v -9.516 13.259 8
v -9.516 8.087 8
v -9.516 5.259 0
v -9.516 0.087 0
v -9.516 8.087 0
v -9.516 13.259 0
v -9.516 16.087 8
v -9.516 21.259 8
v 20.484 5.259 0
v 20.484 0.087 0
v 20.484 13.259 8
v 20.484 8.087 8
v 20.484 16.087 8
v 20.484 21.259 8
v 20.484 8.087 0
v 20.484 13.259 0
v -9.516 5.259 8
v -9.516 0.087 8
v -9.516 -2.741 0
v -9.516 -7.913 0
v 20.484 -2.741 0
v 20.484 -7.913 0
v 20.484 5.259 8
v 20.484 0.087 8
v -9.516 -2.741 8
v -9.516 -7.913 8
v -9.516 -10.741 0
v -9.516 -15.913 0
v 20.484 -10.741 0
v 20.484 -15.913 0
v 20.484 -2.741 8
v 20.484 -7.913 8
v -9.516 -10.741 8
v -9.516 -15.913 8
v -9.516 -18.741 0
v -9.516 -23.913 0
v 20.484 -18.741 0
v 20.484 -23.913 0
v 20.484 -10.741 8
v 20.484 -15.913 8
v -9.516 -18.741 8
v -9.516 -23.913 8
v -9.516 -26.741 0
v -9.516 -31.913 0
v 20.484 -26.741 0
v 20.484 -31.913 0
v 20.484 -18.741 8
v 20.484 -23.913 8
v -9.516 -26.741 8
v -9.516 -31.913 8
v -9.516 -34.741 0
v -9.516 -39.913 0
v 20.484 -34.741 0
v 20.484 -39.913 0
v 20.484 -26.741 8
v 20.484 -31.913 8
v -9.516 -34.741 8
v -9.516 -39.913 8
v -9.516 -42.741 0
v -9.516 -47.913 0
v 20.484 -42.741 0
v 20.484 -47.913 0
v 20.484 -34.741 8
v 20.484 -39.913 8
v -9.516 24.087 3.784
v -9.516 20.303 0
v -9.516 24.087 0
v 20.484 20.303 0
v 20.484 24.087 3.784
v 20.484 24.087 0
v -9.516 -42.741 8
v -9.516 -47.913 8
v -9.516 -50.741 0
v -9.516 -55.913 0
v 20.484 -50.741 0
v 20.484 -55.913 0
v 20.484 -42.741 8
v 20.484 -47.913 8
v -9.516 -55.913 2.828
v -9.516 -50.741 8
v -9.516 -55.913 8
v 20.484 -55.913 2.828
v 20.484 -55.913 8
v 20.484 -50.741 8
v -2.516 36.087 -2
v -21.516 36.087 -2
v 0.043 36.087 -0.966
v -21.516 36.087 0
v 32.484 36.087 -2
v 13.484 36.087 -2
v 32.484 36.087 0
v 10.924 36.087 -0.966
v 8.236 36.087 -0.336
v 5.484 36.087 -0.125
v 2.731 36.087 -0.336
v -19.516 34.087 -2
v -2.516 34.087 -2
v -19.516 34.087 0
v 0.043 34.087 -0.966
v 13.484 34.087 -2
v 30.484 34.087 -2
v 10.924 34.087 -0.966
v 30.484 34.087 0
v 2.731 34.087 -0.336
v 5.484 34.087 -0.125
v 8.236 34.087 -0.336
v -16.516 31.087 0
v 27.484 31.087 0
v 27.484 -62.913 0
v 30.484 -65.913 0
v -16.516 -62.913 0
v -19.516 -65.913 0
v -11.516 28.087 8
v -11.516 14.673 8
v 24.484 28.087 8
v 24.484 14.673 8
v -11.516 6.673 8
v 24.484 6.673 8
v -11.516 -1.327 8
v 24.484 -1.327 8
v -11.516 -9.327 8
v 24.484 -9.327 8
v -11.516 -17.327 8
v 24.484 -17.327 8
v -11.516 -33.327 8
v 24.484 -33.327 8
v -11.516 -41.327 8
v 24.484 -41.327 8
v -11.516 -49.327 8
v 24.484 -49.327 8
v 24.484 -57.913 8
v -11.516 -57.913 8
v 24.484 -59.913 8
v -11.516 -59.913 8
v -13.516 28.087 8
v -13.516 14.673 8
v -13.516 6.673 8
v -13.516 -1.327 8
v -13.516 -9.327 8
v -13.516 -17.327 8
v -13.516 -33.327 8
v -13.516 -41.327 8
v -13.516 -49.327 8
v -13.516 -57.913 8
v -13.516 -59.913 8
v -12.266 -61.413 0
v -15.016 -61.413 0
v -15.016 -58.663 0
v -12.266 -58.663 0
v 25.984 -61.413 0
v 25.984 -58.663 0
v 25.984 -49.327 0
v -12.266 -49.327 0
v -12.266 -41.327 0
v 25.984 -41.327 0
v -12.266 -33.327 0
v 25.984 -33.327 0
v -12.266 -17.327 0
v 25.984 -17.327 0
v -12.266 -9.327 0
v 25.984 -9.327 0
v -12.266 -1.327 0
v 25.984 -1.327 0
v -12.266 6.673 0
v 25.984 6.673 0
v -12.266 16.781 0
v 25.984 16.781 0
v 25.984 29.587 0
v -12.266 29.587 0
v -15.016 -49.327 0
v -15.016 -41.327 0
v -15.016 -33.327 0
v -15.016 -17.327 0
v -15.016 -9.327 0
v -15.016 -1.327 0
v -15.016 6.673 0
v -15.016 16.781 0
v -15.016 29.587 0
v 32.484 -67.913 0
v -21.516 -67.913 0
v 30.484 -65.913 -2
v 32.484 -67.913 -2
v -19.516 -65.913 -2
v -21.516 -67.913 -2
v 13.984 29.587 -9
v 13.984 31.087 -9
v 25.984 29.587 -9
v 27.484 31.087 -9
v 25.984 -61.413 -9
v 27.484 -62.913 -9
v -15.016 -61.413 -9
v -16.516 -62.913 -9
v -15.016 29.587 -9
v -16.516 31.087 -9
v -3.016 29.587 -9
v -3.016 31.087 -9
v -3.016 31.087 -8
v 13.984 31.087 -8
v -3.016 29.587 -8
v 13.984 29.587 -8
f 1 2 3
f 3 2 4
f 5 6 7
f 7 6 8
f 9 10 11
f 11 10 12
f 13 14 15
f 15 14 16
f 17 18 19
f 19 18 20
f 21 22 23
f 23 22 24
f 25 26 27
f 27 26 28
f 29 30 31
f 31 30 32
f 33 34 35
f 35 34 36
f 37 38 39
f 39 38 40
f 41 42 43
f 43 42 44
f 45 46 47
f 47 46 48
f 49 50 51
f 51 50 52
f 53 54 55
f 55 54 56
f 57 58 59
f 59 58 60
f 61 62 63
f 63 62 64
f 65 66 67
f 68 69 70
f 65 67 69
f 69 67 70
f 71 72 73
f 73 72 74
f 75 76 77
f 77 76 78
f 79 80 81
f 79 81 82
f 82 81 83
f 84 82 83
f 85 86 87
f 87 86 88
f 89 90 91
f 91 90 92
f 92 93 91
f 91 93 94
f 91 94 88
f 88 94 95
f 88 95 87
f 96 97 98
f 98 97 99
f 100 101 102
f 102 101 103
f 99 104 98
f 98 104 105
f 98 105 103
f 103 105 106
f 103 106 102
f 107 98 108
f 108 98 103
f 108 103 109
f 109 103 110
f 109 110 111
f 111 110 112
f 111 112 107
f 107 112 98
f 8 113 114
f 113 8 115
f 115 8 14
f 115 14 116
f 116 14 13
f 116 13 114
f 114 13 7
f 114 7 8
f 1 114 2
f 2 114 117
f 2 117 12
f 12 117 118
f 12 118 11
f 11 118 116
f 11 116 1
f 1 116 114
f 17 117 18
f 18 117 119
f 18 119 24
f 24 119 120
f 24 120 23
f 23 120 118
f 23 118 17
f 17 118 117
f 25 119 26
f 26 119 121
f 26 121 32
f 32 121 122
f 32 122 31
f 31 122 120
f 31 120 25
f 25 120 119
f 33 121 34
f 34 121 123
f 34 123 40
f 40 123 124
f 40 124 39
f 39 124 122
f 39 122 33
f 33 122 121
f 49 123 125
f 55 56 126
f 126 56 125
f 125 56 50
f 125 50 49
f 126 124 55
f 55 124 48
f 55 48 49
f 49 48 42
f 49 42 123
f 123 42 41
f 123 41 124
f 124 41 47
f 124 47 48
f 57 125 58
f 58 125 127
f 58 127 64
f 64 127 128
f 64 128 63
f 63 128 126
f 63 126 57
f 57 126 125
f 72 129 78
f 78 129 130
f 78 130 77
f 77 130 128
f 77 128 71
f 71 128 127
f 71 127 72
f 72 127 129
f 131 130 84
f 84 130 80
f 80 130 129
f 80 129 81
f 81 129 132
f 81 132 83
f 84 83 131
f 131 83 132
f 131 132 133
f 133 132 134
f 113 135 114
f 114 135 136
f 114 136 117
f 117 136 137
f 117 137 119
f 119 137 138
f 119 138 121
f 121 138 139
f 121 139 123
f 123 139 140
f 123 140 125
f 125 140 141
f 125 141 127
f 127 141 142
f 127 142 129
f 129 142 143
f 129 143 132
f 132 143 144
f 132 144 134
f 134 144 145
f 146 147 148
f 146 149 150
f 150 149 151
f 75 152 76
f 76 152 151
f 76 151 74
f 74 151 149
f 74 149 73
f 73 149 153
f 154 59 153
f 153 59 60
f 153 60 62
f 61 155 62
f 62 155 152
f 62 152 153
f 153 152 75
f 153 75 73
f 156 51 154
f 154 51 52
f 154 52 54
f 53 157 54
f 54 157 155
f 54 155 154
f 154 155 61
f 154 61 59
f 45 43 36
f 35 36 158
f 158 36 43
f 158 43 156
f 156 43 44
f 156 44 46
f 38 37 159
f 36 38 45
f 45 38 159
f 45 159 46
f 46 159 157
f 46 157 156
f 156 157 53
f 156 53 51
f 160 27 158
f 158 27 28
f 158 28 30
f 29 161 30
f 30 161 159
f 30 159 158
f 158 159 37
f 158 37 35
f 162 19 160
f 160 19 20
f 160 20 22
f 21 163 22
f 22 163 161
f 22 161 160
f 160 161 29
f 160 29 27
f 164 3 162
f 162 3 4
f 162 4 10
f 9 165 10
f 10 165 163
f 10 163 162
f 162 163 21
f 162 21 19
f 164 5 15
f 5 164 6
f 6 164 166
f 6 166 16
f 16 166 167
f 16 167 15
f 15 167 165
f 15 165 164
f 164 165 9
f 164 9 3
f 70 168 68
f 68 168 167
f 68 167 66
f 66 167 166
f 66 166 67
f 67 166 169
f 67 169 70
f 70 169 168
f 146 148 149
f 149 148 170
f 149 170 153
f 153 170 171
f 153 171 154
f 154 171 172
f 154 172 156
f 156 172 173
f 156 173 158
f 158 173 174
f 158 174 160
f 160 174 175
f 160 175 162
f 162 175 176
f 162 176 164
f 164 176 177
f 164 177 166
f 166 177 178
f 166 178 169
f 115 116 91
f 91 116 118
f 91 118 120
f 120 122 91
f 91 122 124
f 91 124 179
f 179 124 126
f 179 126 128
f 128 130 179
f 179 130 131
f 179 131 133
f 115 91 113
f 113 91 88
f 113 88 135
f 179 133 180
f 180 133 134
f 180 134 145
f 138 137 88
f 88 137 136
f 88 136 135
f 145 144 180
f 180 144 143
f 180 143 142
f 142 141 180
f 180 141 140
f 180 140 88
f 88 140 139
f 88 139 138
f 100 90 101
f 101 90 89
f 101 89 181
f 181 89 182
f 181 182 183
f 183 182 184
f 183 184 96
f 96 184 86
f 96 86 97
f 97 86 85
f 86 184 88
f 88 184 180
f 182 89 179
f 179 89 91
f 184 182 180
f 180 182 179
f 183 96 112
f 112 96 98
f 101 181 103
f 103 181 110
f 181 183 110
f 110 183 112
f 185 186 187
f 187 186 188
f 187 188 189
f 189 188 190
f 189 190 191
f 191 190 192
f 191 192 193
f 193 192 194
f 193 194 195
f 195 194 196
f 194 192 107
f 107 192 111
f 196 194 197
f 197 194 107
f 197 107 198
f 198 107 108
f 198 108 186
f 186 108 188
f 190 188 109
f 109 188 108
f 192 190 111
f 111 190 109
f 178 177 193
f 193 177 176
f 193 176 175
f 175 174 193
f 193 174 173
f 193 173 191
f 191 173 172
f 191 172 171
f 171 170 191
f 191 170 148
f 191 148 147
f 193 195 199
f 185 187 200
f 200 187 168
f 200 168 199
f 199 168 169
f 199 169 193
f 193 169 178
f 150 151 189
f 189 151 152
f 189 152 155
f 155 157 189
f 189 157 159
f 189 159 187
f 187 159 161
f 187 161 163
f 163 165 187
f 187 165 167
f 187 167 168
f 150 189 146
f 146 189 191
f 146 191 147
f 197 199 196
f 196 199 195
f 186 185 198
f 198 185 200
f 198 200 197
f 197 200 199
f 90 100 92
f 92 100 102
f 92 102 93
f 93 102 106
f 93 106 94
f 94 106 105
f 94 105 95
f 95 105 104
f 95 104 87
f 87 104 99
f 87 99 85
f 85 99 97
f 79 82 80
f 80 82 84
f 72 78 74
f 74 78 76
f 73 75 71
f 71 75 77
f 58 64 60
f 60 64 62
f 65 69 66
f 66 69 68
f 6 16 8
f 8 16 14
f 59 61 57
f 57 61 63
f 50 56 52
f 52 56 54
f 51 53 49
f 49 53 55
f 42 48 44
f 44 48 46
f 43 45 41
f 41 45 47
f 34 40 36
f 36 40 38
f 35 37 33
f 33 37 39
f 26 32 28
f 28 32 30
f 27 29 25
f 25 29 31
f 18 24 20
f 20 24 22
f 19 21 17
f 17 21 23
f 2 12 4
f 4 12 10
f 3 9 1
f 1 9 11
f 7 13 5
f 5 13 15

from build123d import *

# Parameters (mm, degrees)
SKETCH1_W               = 54
SKETCH1_H               = 104
SKETCH1_W_2             = 30
SKETCH1_H_2             = 80
BOSS_EXTRUDE1_DEPTH     = 8
CHAMFER1_SIZE           = 8
SKETCH2_W               = 54
SKETCH2_H               = 104
SKETCH2_W_2             = 50
SKETCH2_H_2             = 100
BOSS_EXTRUDE2_DEPTH     = 2
SKETCH3_W               = 44
SKETCH3_H               = 94
SKETCH3_W_2             = 41
SKETCH3_H_2             = 91
BOSS_EXTRUDE3_DEPTH     = 9
CUT_EXTRUDE1_REACH      = 106.581
SKETCH4_W               = 17
SKETCH4_H               = 1
CUT_EXTRUDE2_DEPTH      = 110.326033519
CUT_EXTRUDE2_DEPTH_BACK = 2
BOSS_EXTRUDE4_REACH     = 82.357


with BuildPart() as part:
    # Sketch1 → Boss-Extrude1 (new body)
    with BuildSketch(Plane.XY):
        with Locations((5.483558994, -15.912959381)):
            Rectangle(SKETCH1_W, SKETCH1_H)
        with Locations((5.483558994, -15.912959381)):
            Rectangle(SKETCH1_W_2, SKETCH1_H_2, mode=Mode.SUBTRACT)
    extrude(amount=BOSS_EXTRUDE1_DEPTH)

    # Chamfer1
    chamfer1_edges = [part.edges().sort_by_distance(p)[0] for p in [
        (-21.516441006, -15.912959381, 8),
        (5.483558994, 36.087040619, 8),
        (32.483558994, -15.912959381, 8),
        (5.483558994, -67.912959381, 8),
    ]]
    chamfer(chamfer1_edges, length=CHAMFER1_SIZE - 0.0001)  # a hair under: the kernel refuses the full size

    # Sketch2 → Boss-Extrude2 (add)
    with BuildSketch(Plane(origin=(0, 0, 0), x_dir=(-1, 0, 0), z_dir=(0, 0, -1))):
        with Locations((-5.483558994, -15.912959381)):
            Rectangle(SKETCH2_W, SKETCH2_H)
        with Locations((-5.483558994, -15.912959381)):
            Rectangle(SKETCH2_W_2, SKETCH2_H_2, mode=Mode.SUBTRACT)
    extrude(amount=BOSS_EXTRUDE2_DEPTH)

    # Sketch3 → Boss-Extrude3 (add)
    with BuildSketch(Plane(origin=(0, 0, 0), x_dir=(-1, 0, 0), z_dir=(0, 0, -1))):
        with Locations((-5.483558994, -15.912959381)):
            Rectangle(SKETCH3_W, SKETCH3_H)
        with Locations((-5.483558994, -15.912959381)):
            Rectangle(SKETCH3_W_2, SKETCH3_H_2, mode=Mode.SUBTRACT)
    extrude(amount=BOSS_EXTRUDE3_DEPTH)

    # Sketch4 → Cut-Extrude1 (cut, up to next)
    with BuildSketch(Plane(origin=(0, 31.087040619, 0), x_dir=(1, 0, 0), z_dir=(0, 1, 0)), mode=Mode.PRIVATE) as cut_extrude1_sk1:
        with Locations((5.483558994, 8.5)):
            Rectangle(SKETCH4_W, SKETCH4_H)
    cut_extrude1_tool1 = extrude(cut_extrude1_sk1.sketch, amount=-CUT_EXTRUDE1_REACH, mode=Mode.PRIVATE) & part.part
    add(cut_extrude1_tool1.solids().sort_by_distance((5.483559, 31.087041, -8.5))[0], mode=Mode.SUBTRACT)

    # Sketch5 → Cut-Extrude2 (cut, two sides: drawn at the far end of the back side and taken through both)
    with BuildSketch(Plane(origin=(0, 36.087040619, 0), x_dir=(1, 0, 0), z_dir=(0, 1, 0)).offset(-CUT_EXTRUDE2_DEPTH_BACK)):
        with BuildLine():
            Line((-76.690196685, 38.800488397), (-2.516441006, 2))
            ThreePointArc((-2.516441006, 2), (5.483558994, 0.124515497), (13.483558994, 2))
            Line((13.483558994, 2), (87.657314674, 38.800488397))
            Line((87.657314674, 38.800488397), (87.657314674, 204.402686182))
            Line((87.657314674, 204.402686182), (-76.690196685, 204.402686182))
            Line((-76.690196685, 204.402686182), (-76.690196685, 38.800488397))
        make_face()
    extrude(amount=CUT_EXTRUDE2_DEPTH + CUT_EXTRUDE2_DEPTH_BACK, mode=Mode.SUBTRACT)

    # Sketch6 → Boss-Extrude4 (add, up to next)
    with BuildSketch(Plane.ZY.offset(-20.483558994), mode=Mode.PRIVATE) as boss_extrude4_sk1:
        Polygon((0, -55.912959381), (8, -47.912959381), (8, -50.741386506), (2.828427125, -55.912959381), align=None)
    boss_extrude4_tool1 = extrude(boss_extrude4_sk1.sketch, amount=BOSS_EXTRUDE4_REACH, mode=Mode.PRIVATE) - part.part
    # Sketch6 → Boss-Extrude4 (add, up to next)
    with BuildSketch(Plane.ZY.offset(-20.483558994), mode=Mode.PRIVATE) as boss_extrude4_sk2:
        Polygon((0, -50.741386506), (8, -42.741386506), (8, -39.912959381), (0, -47.912959381), align=None)
    boss_extrude4_tool2 = extrude(boss_extrude4_sk2.sketch, amount=BOSS_EXTRUDE4_REACH, mode=Mode.PRIVATE) - part.part
    # Sketch6 → Boss-Extrude4 (add, up to next)
    with BuildSketch(Plane.ZY.offset(-20.483558994), mode=Mode.PRIVATE) as boss_extrude4_sk3:
        Polygon((0, -42.741386506), (0, -39.912959381), (8, -31.912959381), (8, -34.741386506), align=None)
    boss_extrude4_tool3 = extrude(boss_extrude4_sk3.sketch, amount=BOSS_EXTRUDE4_REACH, mode=Mode.PRIVATE) - part.part
    # Sketch6 → Boss-Extrude4 (add, up to next)
    with BuildSketch(Plane.ZY.offset(-20.483558994), mode=Mode.PRIVATE) as boss_extrude4_sk4:
        Polygon((0, -34.741386506), (0, -31.912959381), (8, -23.912959381), (8, -26.741386506), align=None)
    boss_extrude4_tool4 = extrude(boss_extrude4_sk4.sketch, amount=BOSS_EXTRUDE4_REACH, mode=Mode.PRIVATE) - part.part
    # Sketch6 → Boss-Extrude4 (add, up to next)
    with BuildSketch(Plane.ZY.offset(-20.483558994), mode=Mode.PRIVATE) as boss_extrude4_sk5:
        Polygon((0, -26.741386506), (0, -23.912959381), (8, -15.912959381), (8, -18.741386506), align=None)
    boss_extrude4_tool5 = extrude(boss_extrude4_sk5.sketch, amount=BOSS_EXTRUDE4_REACH, mode=Mode.PRIVATE) - part.part
    # Sketch6 → Boss-Extrude4 (add, up to next)
    with BuildSketch(Plane.ZY.offset(-20.483558994), mode=Mode.PRIVATE) as boss_extrude4_sk6:
        Polygon((0, -18.741386506), (0, -15.912959381), (8, -7.912959381), (8, -10.741386506), align=None)
    boss_extrude4_tool6 = extrude(boss_extrude4_sk6.sketch, amount=BOSS_EXTRUDE4_REACH, mode=Mode.PRIVATE) - part.part
    # Sketch6 → Boss-Extrude4 (add, up to next)
    with BuildSketch(Plane.ZY.offset(-20.483558994), mode=Mode.PRIVATE) as boss_extrude4_sk7:
        Polygon((0, -10.741386506), (0, -7.912959381), (8, 0.087040619), (8, -2.741386506), align=None)
    boss_extrude4_tool7 = extrude(boss_extrude4_sk7.sketch, amount=BOSS_EXTRUDE4_REACH, mode=Mode.PRIVATE) - part.part
    # Sketch6 → Boss-Extrude4 (add, up to next)
    with BuildSketch(Plane.ZY.offset(-20.483558994), mode=Mode.PRIVATE) as boss_extrude4_sk8:
        Polygon((0, -2.741386506), (0, 0.087040619), (8, 8.087040619), (8, 5.258613494), align=None)
    boss_extrude4_tool8 = extrude(boss_extrude4_sk8.sketch, amount=BOSS_EXTRUDE4_REACH, mode=Mode.PRIVATE) - part.part
    # Sketch6 → Boss-Extrude4 (add, up to next)
    with BuildSketch(Plane.ZY.offset(-20.483558994), mode=Mode.PRIVATE) as boss_extrude4_sk9:
        Polygon((0, 5.258613494), (0, 8.087040619), (8, 16.087040619), (8, 13.258613494), align=None)
    boss_extrude4_tool9 = extrude(boss_extrude4_sk9.sketch, amount=BOSS_EXTRUDE4_REACH, mode=Mode.PRIVATE) - part.part
    # Sketch6 → Boss-Extrude4 (add, up to next)
    with BuildSketch(Plane.ZY.offset(-20.483558994), mode=Mode.PRIVATE) as boss_extrude4_sk10:
        Polygon((8, 24.087040619), (8, 21.258613494), (0, 13.258613494), (0, 20.302668178), (3.784372441, 24.087040619), align=None)
    boss_extrude4_tool10 = extrude(boss_extrude4_sk10.sketch, amount=BOSS_EXTRUDE4_REACH, mode=Mode.PRIVATE) - part.part
    add(boss_extrude4_tool1.solids().sort_by_distance((20.483559, -52.569452, 4.656493))[0])
    add(boss_extrude4_tool2.solids().sort_by_distance((20.483559, -45.327173, 4))[0])
    add(boss_extrude4_tool3.solids().sort_by_distance((20.483559, -37.327173, 4))[0])
    add(boss_extrude4_tool4.solids().sort_by_distance((20.483559, -29.327173, 4))[0])
    add(boss_extrude4_tool5.solids().sort_by_distance((20.483559, -21.327173, 4))[0])
    add(boss_extrude4_tool6.solids().sort_by_distance((20.483559, -13.327173, 4))[0])
    add(boss_extrude4_tool7.solids().sort_by_distance((20.483559, -5.327173, 4))[0])
    add(boss_extrude4_tool8.solids().sort_by_distance((20.483559, 2.672827, 4))[0])
    add(boss_extrude4_tool9.solids().sort_by_distance((20.483559, 10.672827, 4))[0])
    add(boss_extrude4_tool10.solids().sort_by_distance((20.483559, 19.898628, 3.514255))[0])


solid = part.part
